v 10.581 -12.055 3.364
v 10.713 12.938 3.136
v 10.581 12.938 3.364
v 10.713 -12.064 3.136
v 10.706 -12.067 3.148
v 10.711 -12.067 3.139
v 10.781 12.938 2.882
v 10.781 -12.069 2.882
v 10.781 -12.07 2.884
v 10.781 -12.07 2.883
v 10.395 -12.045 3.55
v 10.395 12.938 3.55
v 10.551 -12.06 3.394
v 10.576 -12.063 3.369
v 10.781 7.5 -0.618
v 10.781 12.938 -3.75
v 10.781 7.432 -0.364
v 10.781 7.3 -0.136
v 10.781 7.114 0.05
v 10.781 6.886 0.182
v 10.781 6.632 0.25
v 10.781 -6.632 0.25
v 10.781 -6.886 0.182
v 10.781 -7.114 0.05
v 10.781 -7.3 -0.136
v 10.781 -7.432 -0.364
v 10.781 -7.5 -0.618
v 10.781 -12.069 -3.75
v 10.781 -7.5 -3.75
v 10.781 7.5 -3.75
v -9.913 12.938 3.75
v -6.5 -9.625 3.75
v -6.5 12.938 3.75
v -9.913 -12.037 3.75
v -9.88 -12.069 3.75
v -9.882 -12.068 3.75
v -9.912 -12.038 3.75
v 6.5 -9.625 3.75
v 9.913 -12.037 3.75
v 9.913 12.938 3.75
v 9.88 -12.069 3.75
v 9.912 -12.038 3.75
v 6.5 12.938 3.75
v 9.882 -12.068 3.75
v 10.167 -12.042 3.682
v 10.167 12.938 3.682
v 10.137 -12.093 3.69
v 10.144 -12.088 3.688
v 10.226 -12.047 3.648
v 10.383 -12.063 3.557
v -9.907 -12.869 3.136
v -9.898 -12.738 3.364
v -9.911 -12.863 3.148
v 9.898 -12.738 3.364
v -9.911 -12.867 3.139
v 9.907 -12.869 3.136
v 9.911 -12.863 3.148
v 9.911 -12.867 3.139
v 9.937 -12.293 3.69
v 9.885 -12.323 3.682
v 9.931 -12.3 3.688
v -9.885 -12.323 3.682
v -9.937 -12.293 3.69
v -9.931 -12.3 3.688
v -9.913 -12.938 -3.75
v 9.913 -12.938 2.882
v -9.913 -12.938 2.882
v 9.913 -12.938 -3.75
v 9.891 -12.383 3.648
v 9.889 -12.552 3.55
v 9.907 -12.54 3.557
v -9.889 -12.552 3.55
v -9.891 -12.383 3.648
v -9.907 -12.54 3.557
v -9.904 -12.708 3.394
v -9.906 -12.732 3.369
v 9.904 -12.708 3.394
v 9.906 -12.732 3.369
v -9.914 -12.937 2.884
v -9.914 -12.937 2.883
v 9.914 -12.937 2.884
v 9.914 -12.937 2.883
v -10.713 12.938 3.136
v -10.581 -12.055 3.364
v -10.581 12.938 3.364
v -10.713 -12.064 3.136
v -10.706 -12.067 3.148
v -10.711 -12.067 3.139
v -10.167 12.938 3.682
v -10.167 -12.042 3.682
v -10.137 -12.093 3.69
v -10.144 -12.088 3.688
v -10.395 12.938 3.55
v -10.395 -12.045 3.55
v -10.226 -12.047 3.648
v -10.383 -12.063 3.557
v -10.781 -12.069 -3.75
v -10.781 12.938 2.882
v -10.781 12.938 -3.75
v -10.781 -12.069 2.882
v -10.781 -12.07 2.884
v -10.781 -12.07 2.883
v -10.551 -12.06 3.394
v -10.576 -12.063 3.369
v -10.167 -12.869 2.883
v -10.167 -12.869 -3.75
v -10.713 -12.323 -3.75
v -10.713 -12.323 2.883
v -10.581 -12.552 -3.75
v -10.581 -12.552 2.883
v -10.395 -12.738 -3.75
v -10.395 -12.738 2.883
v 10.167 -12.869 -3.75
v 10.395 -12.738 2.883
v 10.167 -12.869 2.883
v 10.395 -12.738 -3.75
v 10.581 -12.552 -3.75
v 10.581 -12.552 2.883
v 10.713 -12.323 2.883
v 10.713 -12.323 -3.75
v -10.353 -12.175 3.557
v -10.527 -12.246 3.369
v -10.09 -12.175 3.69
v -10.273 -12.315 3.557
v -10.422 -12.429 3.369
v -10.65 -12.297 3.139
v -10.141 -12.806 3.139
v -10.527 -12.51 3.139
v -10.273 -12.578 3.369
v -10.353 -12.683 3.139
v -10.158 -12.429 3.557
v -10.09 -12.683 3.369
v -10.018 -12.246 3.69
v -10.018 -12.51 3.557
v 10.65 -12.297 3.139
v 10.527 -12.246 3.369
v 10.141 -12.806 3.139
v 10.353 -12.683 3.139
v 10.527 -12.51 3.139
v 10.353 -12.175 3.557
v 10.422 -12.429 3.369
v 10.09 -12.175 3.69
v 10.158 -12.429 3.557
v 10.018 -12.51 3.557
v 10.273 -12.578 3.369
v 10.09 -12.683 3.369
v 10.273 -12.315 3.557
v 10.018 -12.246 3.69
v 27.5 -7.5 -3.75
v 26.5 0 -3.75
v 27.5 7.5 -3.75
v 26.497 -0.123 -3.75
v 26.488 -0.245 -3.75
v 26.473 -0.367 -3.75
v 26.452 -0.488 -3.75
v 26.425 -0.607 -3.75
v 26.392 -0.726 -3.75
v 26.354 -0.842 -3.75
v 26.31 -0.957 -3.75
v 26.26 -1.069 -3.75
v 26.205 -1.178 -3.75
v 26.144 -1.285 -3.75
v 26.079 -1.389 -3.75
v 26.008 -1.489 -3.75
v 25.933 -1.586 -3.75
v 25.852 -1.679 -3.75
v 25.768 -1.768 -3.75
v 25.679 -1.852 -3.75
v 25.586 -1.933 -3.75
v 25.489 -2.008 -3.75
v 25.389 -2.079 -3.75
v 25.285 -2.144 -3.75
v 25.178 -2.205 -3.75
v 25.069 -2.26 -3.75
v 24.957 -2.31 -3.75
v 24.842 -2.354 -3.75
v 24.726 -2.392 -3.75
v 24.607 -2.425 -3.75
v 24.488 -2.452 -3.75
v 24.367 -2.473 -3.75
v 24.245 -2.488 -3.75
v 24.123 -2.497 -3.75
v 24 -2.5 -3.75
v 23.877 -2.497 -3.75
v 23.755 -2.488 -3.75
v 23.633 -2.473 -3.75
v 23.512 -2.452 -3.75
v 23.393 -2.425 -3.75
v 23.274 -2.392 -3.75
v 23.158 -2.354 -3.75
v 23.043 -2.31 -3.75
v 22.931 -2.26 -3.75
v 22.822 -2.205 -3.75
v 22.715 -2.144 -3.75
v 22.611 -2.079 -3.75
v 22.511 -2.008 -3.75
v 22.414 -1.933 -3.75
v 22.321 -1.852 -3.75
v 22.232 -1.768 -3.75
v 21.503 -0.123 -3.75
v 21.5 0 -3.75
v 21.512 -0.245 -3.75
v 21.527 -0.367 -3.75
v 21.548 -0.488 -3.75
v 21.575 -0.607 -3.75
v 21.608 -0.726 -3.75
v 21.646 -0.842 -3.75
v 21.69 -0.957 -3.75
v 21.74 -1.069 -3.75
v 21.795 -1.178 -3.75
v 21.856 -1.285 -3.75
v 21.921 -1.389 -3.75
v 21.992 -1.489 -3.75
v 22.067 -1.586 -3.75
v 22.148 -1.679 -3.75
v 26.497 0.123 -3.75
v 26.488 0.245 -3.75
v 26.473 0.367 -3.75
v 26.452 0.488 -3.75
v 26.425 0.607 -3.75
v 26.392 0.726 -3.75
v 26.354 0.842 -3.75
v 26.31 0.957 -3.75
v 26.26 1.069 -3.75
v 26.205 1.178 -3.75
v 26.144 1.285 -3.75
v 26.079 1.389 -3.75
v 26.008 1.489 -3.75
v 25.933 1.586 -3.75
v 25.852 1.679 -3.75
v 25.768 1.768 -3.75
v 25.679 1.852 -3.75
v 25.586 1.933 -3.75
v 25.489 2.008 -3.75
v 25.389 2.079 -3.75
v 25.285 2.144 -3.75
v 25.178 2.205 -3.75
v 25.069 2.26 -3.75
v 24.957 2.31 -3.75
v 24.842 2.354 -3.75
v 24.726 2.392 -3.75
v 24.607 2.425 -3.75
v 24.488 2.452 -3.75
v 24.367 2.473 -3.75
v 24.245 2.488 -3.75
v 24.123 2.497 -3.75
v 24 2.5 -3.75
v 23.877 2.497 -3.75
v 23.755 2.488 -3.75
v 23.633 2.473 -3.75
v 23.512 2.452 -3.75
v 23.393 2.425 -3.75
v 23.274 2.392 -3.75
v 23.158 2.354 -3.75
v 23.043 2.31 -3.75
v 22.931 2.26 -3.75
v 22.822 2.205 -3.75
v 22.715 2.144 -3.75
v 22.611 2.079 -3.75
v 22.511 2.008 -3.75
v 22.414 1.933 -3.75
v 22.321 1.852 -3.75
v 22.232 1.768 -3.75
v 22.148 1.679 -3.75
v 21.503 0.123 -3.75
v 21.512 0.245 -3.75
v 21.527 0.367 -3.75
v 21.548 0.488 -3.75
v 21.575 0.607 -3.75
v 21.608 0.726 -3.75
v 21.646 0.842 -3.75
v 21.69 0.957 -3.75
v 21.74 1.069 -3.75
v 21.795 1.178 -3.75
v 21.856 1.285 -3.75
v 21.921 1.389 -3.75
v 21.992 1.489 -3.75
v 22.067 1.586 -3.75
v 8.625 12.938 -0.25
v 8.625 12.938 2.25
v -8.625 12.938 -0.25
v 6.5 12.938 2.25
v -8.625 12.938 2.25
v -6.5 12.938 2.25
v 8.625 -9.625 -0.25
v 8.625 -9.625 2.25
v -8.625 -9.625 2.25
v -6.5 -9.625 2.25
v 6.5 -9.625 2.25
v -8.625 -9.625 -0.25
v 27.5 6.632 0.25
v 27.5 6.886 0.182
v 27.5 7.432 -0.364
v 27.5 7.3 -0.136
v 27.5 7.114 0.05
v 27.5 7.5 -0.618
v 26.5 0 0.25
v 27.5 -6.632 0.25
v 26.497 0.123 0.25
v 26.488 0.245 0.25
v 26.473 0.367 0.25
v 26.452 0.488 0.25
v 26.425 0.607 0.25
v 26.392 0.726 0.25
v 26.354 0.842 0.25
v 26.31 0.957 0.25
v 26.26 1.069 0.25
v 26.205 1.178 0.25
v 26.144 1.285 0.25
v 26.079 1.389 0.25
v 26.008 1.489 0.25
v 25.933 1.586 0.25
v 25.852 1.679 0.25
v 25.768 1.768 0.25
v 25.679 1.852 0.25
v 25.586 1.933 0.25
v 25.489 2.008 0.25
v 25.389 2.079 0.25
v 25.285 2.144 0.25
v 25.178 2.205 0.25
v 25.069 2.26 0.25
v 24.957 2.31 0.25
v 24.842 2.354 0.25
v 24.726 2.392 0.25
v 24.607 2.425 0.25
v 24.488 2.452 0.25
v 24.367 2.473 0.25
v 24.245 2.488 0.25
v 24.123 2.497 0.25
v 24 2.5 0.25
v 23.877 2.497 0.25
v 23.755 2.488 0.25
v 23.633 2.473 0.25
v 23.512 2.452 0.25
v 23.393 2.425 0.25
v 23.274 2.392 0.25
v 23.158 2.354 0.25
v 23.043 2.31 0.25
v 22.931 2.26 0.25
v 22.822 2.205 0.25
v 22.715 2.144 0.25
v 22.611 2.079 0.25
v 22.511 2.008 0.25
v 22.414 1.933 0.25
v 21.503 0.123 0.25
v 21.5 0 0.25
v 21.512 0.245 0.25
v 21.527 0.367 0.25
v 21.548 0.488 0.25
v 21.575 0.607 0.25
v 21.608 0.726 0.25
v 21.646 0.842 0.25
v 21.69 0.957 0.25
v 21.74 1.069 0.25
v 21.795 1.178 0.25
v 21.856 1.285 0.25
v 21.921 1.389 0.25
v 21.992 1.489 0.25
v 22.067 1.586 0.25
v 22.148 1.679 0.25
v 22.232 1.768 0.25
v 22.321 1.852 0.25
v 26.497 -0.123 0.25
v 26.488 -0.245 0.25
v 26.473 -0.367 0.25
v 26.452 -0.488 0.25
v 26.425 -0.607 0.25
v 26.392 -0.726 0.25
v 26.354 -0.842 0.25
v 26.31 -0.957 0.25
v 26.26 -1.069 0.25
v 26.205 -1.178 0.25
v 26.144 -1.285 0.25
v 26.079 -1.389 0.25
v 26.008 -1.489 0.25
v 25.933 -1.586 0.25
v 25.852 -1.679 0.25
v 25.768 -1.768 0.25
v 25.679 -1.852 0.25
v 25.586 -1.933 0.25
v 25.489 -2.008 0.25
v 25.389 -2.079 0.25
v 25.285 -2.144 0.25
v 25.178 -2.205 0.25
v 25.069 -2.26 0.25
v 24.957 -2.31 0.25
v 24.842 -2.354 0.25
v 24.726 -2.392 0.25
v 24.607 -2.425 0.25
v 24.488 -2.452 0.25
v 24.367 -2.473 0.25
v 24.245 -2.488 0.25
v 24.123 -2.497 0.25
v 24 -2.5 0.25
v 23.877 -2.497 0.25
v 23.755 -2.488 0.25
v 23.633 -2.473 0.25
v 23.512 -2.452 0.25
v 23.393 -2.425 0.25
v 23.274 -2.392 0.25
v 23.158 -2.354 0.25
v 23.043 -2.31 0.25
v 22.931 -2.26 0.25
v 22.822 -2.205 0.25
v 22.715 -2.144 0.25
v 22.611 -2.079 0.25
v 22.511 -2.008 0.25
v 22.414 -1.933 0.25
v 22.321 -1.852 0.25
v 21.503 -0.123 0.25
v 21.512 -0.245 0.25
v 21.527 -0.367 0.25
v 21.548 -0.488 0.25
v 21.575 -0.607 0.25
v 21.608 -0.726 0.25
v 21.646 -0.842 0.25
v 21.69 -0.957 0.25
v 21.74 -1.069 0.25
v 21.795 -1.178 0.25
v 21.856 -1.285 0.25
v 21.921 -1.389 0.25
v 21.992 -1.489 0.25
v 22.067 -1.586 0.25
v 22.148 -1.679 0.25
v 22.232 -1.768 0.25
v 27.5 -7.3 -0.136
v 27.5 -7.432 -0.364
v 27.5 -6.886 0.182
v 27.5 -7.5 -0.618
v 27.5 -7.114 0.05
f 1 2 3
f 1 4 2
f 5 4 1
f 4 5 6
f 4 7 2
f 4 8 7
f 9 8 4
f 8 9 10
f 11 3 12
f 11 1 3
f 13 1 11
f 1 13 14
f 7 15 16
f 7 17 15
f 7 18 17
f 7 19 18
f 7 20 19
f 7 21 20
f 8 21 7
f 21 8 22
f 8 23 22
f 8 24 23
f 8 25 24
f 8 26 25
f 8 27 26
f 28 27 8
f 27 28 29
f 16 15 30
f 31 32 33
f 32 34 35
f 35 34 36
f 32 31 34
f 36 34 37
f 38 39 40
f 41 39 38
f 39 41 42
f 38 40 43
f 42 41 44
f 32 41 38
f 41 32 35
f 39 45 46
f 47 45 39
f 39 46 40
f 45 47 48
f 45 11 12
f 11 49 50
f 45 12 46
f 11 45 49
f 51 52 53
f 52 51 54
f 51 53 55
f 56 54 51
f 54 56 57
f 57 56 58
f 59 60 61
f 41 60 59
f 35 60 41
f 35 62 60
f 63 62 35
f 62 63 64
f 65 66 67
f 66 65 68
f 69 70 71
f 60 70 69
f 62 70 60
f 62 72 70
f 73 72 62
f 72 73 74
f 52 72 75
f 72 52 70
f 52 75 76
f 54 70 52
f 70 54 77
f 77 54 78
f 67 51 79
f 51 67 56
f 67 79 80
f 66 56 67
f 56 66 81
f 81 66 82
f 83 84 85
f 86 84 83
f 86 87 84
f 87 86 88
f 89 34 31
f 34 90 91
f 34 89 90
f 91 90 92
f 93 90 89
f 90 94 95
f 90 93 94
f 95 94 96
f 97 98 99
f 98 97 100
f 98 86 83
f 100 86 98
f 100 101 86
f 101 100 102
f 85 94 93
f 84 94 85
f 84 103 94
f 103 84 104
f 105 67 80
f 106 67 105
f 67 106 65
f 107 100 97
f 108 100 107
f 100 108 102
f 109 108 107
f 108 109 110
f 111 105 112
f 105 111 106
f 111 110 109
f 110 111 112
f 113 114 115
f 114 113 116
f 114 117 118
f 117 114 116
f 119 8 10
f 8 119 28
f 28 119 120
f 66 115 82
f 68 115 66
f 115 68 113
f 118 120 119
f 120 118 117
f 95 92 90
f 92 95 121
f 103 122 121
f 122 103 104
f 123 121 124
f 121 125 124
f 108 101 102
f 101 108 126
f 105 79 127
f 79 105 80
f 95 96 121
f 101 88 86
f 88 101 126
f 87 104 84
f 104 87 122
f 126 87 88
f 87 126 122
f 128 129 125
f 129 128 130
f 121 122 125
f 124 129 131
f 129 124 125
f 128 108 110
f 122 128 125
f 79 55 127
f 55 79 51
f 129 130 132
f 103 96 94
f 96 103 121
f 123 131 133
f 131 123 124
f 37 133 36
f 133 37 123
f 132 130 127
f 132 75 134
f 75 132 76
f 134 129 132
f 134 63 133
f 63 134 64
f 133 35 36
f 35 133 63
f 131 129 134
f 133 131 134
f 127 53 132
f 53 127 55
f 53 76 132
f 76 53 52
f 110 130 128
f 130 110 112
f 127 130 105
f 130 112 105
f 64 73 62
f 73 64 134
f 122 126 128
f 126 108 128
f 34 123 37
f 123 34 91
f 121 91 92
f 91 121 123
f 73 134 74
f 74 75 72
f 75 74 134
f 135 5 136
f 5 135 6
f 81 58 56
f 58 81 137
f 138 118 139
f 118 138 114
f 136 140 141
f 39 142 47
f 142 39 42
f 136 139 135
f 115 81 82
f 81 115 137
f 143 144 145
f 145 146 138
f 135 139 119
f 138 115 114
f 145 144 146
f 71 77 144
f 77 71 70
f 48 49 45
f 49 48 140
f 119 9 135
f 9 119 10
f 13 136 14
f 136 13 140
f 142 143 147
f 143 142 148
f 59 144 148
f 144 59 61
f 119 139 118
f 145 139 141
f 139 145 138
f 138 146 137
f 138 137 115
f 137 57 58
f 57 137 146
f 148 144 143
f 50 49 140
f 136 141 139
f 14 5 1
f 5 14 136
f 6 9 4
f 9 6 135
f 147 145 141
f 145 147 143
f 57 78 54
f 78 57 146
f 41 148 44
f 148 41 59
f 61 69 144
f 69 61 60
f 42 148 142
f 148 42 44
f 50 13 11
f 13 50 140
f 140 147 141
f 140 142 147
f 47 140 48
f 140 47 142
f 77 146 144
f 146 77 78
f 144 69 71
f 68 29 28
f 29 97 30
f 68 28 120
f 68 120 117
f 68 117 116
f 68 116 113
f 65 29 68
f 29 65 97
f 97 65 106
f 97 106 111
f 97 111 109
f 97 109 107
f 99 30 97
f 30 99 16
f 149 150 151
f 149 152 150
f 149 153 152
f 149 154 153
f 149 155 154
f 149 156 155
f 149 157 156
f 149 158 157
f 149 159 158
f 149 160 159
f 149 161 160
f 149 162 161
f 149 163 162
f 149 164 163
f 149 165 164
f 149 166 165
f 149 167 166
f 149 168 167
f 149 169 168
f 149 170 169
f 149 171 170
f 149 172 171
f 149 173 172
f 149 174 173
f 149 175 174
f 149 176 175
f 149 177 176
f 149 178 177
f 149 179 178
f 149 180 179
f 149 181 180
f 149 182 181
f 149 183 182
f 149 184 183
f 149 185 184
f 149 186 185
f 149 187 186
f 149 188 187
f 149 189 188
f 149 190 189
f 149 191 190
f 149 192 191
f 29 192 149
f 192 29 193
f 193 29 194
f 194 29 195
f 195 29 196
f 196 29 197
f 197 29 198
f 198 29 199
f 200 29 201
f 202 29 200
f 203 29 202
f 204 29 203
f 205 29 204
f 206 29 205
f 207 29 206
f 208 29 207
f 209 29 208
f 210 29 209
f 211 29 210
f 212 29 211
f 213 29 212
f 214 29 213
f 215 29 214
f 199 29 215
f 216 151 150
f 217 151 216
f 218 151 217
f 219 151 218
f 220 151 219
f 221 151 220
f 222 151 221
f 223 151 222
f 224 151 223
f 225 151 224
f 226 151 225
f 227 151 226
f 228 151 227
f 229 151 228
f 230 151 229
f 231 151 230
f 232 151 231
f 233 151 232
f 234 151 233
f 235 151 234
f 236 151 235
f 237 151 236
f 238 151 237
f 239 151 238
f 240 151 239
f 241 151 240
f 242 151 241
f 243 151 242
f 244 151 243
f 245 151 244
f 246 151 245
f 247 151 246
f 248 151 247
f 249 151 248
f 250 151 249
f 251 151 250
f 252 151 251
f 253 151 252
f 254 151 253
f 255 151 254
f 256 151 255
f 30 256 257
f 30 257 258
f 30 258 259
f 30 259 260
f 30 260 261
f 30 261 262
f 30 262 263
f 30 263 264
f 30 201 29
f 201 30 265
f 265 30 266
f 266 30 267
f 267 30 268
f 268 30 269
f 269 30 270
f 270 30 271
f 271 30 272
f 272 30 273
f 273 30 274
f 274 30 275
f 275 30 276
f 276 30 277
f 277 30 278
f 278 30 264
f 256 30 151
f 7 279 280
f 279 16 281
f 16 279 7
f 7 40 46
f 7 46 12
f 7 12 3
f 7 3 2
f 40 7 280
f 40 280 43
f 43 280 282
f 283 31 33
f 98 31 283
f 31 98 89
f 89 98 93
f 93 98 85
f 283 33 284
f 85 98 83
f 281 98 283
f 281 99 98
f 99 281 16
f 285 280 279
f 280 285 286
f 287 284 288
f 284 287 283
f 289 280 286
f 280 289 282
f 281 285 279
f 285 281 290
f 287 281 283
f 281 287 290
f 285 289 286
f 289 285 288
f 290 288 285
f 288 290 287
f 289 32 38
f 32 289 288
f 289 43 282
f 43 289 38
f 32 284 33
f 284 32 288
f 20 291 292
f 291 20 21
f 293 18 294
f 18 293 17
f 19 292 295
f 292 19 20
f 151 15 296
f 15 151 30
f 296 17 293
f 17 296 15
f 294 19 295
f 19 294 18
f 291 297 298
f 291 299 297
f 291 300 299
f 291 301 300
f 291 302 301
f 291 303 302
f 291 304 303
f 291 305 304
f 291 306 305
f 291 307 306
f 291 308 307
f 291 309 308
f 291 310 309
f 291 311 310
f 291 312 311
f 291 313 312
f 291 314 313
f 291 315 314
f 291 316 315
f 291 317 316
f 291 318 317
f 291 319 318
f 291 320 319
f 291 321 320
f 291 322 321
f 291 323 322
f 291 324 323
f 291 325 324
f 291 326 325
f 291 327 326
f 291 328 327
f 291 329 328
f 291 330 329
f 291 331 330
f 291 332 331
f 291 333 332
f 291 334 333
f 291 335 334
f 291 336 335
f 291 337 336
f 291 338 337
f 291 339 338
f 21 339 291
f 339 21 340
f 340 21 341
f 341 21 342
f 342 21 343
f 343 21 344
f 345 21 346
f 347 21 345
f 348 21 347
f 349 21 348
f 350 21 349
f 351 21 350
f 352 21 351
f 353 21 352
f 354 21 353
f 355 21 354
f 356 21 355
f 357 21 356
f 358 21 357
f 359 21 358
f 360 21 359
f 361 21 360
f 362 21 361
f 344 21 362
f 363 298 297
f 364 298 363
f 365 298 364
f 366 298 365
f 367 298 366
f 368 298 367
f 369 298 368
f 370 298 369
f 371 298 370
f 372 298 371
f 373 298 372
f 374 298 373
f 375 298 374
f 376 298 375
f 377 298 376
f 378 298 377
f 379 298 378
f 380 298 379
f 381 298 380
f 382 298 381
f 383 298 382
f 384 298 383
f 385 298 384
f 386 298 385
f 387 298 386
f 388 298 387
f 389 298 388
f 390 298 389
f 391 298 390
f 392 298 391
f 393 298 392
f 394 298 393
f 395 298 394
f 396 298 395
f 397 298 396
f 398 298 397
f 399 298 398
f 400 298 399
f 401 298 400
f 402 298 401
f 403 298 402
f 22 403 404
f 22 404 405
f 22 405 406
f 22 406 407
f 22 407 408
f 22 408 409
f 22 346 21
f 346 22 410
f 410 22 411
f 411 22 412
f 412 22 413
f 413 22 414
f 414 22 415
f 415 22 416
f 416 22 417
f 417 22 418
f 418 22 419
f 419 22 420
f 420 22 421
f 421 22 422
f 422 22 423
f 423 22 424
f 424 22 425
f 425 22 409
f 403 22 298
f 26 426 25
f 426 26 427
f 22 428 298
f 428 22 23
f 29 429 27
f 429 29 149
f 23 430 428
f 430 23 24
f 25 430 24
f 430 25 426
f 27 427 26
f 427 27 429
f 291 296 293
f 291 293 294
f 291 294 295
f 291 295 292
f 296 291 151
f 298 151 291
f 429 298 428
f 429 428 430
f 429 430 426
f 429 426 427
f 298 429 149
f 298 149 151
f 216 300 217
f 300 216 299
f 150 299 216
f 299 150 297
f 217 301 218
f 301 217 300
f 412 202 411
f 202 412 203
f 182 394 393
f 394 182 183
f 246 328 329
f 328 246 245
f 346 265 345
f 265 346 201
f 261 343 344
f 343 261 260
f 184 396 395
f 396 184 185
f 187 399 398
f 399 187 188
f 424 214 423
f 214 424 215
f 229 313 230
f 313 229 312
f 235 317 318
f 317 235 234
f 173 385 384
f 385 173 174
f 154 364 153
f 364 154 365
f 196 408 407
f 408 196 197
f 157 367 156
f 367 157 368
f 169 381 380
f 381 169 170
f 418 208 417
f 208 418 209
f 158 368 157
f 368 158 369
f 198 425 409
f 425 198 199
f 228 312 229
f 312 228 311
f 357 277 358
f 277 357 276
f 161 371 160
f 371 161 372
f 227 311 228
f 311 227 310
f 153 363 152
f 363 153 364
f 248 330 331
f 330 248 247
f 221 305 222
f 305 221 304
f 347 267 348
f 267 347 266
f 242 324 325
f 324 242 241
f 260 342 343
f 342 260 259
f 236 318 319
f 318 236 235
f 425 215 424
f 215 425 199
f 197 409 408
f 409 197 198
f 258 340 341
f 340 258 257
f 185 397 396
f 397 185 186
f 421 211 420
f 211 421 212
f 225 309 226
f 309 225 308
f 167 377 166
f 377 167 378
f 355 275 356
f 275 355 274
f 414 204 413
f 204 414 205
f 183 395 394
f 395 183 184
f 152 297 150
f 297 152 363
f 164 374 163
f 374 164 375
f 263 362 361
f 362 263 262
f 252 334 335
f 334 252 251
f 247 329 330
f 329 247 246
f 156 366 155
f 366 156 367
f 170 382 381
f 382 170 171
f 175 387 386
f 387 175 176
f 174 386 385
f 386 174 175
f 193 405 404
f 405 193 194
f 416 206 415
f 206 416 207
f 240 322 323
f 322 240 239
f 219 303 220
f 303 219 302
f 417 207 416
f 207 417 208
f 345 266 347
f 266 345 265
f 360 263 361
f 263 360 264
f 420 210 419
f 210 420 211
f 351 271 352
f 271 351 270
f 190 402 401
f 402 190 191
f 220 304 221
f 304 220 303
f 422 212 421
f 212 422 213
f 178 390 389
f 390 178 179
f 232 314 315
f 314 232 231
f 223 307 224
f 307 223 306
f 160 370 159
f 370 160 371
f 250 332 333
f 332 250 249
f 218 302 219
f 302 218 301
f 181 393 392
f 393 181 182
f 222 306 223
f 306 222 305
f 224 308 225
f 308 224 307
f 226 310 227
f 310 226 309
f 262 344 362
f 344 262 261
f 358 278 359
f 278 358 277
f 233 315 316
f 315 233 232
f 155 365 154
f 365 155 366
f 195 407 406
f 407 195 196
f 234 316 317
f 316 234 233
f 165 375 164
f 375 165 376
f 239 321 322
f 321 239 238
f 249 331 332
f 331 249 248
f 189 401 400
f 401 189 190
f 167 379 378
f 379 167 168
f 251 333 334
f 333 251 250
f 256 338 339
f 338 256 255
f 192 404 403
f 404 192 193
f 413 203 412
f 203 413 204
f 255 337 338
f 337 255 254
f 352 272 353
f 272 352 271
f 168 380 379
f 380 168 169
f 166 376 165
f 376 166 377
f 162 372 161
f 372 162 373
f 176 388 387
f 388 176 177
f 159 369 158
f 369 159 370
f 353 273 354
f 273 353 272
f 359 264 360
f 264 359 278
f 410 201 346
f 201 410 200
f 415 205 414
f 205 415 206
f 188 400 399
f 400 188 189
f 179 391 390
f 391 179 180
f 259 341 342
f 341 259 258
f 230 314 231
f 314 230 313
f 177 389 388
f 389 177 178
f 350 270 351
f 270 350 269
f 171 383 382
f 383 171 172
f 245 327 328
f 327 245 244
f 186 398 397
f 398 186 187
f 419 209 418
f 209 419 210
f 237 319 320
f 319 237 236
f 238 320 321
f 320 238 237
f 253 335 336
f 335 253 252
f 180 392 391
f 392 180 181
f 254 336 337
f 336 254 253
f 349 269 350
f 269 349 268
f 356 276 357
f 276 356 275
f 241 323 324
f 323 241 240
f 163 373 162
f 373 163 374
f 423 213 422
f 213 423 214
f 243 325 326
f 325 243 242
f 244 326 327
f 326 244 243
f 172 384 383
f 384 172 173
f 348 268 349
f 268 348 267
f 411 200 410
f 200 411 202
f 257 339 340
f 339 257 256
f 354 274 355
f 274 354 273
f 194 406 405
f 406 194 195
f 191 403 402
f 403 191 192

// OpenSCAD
include <BOSL/constants.scad>
use <BOSL/shapes.scad>

// Bracket on blinker
mount_width   = 17.25;
mount_height = 2.5;
neck_width = 13;


// OpenSCAD stuff
$fn=128;

module base() {
    difference() {
        translate([19,0,-1.75]) cuboid([17,15,4], fillet=1, edges=EDGE_TOP_FR + EDGE_TOP_BK, $fn=24); //cube([17,15,4], center=true);
        translate([24,0,0]) cylinder(d=5,h=10, center=true);
        }
    }
    
module mount() {
    difference() {
        cuboid([1.25*mount_width,1.5*mount_width,mount_height+5], fillet=1, edges=EDGE_TOP_FR + EDGE_TOP_RT + EDGE_FR_RT + EDGE_FR_LF + EDGE_TOP_LF, $fn=24);
        translate([0,4,1]) cube([mount_width, mount_width + 10, mount_height], center=true);
        translate([0,4,mount_height+4.5]) cube([neck_width, mount_width + 10, mount_height+10], center=true);
    }
    translate([0,(mount_width+mount_height)/2,-mount_height*.9])rotate([0,90,0]) cylinder(r=mount_height/2,h=mount_height, center=true);
}
union() {
    mount();
    base();
}
